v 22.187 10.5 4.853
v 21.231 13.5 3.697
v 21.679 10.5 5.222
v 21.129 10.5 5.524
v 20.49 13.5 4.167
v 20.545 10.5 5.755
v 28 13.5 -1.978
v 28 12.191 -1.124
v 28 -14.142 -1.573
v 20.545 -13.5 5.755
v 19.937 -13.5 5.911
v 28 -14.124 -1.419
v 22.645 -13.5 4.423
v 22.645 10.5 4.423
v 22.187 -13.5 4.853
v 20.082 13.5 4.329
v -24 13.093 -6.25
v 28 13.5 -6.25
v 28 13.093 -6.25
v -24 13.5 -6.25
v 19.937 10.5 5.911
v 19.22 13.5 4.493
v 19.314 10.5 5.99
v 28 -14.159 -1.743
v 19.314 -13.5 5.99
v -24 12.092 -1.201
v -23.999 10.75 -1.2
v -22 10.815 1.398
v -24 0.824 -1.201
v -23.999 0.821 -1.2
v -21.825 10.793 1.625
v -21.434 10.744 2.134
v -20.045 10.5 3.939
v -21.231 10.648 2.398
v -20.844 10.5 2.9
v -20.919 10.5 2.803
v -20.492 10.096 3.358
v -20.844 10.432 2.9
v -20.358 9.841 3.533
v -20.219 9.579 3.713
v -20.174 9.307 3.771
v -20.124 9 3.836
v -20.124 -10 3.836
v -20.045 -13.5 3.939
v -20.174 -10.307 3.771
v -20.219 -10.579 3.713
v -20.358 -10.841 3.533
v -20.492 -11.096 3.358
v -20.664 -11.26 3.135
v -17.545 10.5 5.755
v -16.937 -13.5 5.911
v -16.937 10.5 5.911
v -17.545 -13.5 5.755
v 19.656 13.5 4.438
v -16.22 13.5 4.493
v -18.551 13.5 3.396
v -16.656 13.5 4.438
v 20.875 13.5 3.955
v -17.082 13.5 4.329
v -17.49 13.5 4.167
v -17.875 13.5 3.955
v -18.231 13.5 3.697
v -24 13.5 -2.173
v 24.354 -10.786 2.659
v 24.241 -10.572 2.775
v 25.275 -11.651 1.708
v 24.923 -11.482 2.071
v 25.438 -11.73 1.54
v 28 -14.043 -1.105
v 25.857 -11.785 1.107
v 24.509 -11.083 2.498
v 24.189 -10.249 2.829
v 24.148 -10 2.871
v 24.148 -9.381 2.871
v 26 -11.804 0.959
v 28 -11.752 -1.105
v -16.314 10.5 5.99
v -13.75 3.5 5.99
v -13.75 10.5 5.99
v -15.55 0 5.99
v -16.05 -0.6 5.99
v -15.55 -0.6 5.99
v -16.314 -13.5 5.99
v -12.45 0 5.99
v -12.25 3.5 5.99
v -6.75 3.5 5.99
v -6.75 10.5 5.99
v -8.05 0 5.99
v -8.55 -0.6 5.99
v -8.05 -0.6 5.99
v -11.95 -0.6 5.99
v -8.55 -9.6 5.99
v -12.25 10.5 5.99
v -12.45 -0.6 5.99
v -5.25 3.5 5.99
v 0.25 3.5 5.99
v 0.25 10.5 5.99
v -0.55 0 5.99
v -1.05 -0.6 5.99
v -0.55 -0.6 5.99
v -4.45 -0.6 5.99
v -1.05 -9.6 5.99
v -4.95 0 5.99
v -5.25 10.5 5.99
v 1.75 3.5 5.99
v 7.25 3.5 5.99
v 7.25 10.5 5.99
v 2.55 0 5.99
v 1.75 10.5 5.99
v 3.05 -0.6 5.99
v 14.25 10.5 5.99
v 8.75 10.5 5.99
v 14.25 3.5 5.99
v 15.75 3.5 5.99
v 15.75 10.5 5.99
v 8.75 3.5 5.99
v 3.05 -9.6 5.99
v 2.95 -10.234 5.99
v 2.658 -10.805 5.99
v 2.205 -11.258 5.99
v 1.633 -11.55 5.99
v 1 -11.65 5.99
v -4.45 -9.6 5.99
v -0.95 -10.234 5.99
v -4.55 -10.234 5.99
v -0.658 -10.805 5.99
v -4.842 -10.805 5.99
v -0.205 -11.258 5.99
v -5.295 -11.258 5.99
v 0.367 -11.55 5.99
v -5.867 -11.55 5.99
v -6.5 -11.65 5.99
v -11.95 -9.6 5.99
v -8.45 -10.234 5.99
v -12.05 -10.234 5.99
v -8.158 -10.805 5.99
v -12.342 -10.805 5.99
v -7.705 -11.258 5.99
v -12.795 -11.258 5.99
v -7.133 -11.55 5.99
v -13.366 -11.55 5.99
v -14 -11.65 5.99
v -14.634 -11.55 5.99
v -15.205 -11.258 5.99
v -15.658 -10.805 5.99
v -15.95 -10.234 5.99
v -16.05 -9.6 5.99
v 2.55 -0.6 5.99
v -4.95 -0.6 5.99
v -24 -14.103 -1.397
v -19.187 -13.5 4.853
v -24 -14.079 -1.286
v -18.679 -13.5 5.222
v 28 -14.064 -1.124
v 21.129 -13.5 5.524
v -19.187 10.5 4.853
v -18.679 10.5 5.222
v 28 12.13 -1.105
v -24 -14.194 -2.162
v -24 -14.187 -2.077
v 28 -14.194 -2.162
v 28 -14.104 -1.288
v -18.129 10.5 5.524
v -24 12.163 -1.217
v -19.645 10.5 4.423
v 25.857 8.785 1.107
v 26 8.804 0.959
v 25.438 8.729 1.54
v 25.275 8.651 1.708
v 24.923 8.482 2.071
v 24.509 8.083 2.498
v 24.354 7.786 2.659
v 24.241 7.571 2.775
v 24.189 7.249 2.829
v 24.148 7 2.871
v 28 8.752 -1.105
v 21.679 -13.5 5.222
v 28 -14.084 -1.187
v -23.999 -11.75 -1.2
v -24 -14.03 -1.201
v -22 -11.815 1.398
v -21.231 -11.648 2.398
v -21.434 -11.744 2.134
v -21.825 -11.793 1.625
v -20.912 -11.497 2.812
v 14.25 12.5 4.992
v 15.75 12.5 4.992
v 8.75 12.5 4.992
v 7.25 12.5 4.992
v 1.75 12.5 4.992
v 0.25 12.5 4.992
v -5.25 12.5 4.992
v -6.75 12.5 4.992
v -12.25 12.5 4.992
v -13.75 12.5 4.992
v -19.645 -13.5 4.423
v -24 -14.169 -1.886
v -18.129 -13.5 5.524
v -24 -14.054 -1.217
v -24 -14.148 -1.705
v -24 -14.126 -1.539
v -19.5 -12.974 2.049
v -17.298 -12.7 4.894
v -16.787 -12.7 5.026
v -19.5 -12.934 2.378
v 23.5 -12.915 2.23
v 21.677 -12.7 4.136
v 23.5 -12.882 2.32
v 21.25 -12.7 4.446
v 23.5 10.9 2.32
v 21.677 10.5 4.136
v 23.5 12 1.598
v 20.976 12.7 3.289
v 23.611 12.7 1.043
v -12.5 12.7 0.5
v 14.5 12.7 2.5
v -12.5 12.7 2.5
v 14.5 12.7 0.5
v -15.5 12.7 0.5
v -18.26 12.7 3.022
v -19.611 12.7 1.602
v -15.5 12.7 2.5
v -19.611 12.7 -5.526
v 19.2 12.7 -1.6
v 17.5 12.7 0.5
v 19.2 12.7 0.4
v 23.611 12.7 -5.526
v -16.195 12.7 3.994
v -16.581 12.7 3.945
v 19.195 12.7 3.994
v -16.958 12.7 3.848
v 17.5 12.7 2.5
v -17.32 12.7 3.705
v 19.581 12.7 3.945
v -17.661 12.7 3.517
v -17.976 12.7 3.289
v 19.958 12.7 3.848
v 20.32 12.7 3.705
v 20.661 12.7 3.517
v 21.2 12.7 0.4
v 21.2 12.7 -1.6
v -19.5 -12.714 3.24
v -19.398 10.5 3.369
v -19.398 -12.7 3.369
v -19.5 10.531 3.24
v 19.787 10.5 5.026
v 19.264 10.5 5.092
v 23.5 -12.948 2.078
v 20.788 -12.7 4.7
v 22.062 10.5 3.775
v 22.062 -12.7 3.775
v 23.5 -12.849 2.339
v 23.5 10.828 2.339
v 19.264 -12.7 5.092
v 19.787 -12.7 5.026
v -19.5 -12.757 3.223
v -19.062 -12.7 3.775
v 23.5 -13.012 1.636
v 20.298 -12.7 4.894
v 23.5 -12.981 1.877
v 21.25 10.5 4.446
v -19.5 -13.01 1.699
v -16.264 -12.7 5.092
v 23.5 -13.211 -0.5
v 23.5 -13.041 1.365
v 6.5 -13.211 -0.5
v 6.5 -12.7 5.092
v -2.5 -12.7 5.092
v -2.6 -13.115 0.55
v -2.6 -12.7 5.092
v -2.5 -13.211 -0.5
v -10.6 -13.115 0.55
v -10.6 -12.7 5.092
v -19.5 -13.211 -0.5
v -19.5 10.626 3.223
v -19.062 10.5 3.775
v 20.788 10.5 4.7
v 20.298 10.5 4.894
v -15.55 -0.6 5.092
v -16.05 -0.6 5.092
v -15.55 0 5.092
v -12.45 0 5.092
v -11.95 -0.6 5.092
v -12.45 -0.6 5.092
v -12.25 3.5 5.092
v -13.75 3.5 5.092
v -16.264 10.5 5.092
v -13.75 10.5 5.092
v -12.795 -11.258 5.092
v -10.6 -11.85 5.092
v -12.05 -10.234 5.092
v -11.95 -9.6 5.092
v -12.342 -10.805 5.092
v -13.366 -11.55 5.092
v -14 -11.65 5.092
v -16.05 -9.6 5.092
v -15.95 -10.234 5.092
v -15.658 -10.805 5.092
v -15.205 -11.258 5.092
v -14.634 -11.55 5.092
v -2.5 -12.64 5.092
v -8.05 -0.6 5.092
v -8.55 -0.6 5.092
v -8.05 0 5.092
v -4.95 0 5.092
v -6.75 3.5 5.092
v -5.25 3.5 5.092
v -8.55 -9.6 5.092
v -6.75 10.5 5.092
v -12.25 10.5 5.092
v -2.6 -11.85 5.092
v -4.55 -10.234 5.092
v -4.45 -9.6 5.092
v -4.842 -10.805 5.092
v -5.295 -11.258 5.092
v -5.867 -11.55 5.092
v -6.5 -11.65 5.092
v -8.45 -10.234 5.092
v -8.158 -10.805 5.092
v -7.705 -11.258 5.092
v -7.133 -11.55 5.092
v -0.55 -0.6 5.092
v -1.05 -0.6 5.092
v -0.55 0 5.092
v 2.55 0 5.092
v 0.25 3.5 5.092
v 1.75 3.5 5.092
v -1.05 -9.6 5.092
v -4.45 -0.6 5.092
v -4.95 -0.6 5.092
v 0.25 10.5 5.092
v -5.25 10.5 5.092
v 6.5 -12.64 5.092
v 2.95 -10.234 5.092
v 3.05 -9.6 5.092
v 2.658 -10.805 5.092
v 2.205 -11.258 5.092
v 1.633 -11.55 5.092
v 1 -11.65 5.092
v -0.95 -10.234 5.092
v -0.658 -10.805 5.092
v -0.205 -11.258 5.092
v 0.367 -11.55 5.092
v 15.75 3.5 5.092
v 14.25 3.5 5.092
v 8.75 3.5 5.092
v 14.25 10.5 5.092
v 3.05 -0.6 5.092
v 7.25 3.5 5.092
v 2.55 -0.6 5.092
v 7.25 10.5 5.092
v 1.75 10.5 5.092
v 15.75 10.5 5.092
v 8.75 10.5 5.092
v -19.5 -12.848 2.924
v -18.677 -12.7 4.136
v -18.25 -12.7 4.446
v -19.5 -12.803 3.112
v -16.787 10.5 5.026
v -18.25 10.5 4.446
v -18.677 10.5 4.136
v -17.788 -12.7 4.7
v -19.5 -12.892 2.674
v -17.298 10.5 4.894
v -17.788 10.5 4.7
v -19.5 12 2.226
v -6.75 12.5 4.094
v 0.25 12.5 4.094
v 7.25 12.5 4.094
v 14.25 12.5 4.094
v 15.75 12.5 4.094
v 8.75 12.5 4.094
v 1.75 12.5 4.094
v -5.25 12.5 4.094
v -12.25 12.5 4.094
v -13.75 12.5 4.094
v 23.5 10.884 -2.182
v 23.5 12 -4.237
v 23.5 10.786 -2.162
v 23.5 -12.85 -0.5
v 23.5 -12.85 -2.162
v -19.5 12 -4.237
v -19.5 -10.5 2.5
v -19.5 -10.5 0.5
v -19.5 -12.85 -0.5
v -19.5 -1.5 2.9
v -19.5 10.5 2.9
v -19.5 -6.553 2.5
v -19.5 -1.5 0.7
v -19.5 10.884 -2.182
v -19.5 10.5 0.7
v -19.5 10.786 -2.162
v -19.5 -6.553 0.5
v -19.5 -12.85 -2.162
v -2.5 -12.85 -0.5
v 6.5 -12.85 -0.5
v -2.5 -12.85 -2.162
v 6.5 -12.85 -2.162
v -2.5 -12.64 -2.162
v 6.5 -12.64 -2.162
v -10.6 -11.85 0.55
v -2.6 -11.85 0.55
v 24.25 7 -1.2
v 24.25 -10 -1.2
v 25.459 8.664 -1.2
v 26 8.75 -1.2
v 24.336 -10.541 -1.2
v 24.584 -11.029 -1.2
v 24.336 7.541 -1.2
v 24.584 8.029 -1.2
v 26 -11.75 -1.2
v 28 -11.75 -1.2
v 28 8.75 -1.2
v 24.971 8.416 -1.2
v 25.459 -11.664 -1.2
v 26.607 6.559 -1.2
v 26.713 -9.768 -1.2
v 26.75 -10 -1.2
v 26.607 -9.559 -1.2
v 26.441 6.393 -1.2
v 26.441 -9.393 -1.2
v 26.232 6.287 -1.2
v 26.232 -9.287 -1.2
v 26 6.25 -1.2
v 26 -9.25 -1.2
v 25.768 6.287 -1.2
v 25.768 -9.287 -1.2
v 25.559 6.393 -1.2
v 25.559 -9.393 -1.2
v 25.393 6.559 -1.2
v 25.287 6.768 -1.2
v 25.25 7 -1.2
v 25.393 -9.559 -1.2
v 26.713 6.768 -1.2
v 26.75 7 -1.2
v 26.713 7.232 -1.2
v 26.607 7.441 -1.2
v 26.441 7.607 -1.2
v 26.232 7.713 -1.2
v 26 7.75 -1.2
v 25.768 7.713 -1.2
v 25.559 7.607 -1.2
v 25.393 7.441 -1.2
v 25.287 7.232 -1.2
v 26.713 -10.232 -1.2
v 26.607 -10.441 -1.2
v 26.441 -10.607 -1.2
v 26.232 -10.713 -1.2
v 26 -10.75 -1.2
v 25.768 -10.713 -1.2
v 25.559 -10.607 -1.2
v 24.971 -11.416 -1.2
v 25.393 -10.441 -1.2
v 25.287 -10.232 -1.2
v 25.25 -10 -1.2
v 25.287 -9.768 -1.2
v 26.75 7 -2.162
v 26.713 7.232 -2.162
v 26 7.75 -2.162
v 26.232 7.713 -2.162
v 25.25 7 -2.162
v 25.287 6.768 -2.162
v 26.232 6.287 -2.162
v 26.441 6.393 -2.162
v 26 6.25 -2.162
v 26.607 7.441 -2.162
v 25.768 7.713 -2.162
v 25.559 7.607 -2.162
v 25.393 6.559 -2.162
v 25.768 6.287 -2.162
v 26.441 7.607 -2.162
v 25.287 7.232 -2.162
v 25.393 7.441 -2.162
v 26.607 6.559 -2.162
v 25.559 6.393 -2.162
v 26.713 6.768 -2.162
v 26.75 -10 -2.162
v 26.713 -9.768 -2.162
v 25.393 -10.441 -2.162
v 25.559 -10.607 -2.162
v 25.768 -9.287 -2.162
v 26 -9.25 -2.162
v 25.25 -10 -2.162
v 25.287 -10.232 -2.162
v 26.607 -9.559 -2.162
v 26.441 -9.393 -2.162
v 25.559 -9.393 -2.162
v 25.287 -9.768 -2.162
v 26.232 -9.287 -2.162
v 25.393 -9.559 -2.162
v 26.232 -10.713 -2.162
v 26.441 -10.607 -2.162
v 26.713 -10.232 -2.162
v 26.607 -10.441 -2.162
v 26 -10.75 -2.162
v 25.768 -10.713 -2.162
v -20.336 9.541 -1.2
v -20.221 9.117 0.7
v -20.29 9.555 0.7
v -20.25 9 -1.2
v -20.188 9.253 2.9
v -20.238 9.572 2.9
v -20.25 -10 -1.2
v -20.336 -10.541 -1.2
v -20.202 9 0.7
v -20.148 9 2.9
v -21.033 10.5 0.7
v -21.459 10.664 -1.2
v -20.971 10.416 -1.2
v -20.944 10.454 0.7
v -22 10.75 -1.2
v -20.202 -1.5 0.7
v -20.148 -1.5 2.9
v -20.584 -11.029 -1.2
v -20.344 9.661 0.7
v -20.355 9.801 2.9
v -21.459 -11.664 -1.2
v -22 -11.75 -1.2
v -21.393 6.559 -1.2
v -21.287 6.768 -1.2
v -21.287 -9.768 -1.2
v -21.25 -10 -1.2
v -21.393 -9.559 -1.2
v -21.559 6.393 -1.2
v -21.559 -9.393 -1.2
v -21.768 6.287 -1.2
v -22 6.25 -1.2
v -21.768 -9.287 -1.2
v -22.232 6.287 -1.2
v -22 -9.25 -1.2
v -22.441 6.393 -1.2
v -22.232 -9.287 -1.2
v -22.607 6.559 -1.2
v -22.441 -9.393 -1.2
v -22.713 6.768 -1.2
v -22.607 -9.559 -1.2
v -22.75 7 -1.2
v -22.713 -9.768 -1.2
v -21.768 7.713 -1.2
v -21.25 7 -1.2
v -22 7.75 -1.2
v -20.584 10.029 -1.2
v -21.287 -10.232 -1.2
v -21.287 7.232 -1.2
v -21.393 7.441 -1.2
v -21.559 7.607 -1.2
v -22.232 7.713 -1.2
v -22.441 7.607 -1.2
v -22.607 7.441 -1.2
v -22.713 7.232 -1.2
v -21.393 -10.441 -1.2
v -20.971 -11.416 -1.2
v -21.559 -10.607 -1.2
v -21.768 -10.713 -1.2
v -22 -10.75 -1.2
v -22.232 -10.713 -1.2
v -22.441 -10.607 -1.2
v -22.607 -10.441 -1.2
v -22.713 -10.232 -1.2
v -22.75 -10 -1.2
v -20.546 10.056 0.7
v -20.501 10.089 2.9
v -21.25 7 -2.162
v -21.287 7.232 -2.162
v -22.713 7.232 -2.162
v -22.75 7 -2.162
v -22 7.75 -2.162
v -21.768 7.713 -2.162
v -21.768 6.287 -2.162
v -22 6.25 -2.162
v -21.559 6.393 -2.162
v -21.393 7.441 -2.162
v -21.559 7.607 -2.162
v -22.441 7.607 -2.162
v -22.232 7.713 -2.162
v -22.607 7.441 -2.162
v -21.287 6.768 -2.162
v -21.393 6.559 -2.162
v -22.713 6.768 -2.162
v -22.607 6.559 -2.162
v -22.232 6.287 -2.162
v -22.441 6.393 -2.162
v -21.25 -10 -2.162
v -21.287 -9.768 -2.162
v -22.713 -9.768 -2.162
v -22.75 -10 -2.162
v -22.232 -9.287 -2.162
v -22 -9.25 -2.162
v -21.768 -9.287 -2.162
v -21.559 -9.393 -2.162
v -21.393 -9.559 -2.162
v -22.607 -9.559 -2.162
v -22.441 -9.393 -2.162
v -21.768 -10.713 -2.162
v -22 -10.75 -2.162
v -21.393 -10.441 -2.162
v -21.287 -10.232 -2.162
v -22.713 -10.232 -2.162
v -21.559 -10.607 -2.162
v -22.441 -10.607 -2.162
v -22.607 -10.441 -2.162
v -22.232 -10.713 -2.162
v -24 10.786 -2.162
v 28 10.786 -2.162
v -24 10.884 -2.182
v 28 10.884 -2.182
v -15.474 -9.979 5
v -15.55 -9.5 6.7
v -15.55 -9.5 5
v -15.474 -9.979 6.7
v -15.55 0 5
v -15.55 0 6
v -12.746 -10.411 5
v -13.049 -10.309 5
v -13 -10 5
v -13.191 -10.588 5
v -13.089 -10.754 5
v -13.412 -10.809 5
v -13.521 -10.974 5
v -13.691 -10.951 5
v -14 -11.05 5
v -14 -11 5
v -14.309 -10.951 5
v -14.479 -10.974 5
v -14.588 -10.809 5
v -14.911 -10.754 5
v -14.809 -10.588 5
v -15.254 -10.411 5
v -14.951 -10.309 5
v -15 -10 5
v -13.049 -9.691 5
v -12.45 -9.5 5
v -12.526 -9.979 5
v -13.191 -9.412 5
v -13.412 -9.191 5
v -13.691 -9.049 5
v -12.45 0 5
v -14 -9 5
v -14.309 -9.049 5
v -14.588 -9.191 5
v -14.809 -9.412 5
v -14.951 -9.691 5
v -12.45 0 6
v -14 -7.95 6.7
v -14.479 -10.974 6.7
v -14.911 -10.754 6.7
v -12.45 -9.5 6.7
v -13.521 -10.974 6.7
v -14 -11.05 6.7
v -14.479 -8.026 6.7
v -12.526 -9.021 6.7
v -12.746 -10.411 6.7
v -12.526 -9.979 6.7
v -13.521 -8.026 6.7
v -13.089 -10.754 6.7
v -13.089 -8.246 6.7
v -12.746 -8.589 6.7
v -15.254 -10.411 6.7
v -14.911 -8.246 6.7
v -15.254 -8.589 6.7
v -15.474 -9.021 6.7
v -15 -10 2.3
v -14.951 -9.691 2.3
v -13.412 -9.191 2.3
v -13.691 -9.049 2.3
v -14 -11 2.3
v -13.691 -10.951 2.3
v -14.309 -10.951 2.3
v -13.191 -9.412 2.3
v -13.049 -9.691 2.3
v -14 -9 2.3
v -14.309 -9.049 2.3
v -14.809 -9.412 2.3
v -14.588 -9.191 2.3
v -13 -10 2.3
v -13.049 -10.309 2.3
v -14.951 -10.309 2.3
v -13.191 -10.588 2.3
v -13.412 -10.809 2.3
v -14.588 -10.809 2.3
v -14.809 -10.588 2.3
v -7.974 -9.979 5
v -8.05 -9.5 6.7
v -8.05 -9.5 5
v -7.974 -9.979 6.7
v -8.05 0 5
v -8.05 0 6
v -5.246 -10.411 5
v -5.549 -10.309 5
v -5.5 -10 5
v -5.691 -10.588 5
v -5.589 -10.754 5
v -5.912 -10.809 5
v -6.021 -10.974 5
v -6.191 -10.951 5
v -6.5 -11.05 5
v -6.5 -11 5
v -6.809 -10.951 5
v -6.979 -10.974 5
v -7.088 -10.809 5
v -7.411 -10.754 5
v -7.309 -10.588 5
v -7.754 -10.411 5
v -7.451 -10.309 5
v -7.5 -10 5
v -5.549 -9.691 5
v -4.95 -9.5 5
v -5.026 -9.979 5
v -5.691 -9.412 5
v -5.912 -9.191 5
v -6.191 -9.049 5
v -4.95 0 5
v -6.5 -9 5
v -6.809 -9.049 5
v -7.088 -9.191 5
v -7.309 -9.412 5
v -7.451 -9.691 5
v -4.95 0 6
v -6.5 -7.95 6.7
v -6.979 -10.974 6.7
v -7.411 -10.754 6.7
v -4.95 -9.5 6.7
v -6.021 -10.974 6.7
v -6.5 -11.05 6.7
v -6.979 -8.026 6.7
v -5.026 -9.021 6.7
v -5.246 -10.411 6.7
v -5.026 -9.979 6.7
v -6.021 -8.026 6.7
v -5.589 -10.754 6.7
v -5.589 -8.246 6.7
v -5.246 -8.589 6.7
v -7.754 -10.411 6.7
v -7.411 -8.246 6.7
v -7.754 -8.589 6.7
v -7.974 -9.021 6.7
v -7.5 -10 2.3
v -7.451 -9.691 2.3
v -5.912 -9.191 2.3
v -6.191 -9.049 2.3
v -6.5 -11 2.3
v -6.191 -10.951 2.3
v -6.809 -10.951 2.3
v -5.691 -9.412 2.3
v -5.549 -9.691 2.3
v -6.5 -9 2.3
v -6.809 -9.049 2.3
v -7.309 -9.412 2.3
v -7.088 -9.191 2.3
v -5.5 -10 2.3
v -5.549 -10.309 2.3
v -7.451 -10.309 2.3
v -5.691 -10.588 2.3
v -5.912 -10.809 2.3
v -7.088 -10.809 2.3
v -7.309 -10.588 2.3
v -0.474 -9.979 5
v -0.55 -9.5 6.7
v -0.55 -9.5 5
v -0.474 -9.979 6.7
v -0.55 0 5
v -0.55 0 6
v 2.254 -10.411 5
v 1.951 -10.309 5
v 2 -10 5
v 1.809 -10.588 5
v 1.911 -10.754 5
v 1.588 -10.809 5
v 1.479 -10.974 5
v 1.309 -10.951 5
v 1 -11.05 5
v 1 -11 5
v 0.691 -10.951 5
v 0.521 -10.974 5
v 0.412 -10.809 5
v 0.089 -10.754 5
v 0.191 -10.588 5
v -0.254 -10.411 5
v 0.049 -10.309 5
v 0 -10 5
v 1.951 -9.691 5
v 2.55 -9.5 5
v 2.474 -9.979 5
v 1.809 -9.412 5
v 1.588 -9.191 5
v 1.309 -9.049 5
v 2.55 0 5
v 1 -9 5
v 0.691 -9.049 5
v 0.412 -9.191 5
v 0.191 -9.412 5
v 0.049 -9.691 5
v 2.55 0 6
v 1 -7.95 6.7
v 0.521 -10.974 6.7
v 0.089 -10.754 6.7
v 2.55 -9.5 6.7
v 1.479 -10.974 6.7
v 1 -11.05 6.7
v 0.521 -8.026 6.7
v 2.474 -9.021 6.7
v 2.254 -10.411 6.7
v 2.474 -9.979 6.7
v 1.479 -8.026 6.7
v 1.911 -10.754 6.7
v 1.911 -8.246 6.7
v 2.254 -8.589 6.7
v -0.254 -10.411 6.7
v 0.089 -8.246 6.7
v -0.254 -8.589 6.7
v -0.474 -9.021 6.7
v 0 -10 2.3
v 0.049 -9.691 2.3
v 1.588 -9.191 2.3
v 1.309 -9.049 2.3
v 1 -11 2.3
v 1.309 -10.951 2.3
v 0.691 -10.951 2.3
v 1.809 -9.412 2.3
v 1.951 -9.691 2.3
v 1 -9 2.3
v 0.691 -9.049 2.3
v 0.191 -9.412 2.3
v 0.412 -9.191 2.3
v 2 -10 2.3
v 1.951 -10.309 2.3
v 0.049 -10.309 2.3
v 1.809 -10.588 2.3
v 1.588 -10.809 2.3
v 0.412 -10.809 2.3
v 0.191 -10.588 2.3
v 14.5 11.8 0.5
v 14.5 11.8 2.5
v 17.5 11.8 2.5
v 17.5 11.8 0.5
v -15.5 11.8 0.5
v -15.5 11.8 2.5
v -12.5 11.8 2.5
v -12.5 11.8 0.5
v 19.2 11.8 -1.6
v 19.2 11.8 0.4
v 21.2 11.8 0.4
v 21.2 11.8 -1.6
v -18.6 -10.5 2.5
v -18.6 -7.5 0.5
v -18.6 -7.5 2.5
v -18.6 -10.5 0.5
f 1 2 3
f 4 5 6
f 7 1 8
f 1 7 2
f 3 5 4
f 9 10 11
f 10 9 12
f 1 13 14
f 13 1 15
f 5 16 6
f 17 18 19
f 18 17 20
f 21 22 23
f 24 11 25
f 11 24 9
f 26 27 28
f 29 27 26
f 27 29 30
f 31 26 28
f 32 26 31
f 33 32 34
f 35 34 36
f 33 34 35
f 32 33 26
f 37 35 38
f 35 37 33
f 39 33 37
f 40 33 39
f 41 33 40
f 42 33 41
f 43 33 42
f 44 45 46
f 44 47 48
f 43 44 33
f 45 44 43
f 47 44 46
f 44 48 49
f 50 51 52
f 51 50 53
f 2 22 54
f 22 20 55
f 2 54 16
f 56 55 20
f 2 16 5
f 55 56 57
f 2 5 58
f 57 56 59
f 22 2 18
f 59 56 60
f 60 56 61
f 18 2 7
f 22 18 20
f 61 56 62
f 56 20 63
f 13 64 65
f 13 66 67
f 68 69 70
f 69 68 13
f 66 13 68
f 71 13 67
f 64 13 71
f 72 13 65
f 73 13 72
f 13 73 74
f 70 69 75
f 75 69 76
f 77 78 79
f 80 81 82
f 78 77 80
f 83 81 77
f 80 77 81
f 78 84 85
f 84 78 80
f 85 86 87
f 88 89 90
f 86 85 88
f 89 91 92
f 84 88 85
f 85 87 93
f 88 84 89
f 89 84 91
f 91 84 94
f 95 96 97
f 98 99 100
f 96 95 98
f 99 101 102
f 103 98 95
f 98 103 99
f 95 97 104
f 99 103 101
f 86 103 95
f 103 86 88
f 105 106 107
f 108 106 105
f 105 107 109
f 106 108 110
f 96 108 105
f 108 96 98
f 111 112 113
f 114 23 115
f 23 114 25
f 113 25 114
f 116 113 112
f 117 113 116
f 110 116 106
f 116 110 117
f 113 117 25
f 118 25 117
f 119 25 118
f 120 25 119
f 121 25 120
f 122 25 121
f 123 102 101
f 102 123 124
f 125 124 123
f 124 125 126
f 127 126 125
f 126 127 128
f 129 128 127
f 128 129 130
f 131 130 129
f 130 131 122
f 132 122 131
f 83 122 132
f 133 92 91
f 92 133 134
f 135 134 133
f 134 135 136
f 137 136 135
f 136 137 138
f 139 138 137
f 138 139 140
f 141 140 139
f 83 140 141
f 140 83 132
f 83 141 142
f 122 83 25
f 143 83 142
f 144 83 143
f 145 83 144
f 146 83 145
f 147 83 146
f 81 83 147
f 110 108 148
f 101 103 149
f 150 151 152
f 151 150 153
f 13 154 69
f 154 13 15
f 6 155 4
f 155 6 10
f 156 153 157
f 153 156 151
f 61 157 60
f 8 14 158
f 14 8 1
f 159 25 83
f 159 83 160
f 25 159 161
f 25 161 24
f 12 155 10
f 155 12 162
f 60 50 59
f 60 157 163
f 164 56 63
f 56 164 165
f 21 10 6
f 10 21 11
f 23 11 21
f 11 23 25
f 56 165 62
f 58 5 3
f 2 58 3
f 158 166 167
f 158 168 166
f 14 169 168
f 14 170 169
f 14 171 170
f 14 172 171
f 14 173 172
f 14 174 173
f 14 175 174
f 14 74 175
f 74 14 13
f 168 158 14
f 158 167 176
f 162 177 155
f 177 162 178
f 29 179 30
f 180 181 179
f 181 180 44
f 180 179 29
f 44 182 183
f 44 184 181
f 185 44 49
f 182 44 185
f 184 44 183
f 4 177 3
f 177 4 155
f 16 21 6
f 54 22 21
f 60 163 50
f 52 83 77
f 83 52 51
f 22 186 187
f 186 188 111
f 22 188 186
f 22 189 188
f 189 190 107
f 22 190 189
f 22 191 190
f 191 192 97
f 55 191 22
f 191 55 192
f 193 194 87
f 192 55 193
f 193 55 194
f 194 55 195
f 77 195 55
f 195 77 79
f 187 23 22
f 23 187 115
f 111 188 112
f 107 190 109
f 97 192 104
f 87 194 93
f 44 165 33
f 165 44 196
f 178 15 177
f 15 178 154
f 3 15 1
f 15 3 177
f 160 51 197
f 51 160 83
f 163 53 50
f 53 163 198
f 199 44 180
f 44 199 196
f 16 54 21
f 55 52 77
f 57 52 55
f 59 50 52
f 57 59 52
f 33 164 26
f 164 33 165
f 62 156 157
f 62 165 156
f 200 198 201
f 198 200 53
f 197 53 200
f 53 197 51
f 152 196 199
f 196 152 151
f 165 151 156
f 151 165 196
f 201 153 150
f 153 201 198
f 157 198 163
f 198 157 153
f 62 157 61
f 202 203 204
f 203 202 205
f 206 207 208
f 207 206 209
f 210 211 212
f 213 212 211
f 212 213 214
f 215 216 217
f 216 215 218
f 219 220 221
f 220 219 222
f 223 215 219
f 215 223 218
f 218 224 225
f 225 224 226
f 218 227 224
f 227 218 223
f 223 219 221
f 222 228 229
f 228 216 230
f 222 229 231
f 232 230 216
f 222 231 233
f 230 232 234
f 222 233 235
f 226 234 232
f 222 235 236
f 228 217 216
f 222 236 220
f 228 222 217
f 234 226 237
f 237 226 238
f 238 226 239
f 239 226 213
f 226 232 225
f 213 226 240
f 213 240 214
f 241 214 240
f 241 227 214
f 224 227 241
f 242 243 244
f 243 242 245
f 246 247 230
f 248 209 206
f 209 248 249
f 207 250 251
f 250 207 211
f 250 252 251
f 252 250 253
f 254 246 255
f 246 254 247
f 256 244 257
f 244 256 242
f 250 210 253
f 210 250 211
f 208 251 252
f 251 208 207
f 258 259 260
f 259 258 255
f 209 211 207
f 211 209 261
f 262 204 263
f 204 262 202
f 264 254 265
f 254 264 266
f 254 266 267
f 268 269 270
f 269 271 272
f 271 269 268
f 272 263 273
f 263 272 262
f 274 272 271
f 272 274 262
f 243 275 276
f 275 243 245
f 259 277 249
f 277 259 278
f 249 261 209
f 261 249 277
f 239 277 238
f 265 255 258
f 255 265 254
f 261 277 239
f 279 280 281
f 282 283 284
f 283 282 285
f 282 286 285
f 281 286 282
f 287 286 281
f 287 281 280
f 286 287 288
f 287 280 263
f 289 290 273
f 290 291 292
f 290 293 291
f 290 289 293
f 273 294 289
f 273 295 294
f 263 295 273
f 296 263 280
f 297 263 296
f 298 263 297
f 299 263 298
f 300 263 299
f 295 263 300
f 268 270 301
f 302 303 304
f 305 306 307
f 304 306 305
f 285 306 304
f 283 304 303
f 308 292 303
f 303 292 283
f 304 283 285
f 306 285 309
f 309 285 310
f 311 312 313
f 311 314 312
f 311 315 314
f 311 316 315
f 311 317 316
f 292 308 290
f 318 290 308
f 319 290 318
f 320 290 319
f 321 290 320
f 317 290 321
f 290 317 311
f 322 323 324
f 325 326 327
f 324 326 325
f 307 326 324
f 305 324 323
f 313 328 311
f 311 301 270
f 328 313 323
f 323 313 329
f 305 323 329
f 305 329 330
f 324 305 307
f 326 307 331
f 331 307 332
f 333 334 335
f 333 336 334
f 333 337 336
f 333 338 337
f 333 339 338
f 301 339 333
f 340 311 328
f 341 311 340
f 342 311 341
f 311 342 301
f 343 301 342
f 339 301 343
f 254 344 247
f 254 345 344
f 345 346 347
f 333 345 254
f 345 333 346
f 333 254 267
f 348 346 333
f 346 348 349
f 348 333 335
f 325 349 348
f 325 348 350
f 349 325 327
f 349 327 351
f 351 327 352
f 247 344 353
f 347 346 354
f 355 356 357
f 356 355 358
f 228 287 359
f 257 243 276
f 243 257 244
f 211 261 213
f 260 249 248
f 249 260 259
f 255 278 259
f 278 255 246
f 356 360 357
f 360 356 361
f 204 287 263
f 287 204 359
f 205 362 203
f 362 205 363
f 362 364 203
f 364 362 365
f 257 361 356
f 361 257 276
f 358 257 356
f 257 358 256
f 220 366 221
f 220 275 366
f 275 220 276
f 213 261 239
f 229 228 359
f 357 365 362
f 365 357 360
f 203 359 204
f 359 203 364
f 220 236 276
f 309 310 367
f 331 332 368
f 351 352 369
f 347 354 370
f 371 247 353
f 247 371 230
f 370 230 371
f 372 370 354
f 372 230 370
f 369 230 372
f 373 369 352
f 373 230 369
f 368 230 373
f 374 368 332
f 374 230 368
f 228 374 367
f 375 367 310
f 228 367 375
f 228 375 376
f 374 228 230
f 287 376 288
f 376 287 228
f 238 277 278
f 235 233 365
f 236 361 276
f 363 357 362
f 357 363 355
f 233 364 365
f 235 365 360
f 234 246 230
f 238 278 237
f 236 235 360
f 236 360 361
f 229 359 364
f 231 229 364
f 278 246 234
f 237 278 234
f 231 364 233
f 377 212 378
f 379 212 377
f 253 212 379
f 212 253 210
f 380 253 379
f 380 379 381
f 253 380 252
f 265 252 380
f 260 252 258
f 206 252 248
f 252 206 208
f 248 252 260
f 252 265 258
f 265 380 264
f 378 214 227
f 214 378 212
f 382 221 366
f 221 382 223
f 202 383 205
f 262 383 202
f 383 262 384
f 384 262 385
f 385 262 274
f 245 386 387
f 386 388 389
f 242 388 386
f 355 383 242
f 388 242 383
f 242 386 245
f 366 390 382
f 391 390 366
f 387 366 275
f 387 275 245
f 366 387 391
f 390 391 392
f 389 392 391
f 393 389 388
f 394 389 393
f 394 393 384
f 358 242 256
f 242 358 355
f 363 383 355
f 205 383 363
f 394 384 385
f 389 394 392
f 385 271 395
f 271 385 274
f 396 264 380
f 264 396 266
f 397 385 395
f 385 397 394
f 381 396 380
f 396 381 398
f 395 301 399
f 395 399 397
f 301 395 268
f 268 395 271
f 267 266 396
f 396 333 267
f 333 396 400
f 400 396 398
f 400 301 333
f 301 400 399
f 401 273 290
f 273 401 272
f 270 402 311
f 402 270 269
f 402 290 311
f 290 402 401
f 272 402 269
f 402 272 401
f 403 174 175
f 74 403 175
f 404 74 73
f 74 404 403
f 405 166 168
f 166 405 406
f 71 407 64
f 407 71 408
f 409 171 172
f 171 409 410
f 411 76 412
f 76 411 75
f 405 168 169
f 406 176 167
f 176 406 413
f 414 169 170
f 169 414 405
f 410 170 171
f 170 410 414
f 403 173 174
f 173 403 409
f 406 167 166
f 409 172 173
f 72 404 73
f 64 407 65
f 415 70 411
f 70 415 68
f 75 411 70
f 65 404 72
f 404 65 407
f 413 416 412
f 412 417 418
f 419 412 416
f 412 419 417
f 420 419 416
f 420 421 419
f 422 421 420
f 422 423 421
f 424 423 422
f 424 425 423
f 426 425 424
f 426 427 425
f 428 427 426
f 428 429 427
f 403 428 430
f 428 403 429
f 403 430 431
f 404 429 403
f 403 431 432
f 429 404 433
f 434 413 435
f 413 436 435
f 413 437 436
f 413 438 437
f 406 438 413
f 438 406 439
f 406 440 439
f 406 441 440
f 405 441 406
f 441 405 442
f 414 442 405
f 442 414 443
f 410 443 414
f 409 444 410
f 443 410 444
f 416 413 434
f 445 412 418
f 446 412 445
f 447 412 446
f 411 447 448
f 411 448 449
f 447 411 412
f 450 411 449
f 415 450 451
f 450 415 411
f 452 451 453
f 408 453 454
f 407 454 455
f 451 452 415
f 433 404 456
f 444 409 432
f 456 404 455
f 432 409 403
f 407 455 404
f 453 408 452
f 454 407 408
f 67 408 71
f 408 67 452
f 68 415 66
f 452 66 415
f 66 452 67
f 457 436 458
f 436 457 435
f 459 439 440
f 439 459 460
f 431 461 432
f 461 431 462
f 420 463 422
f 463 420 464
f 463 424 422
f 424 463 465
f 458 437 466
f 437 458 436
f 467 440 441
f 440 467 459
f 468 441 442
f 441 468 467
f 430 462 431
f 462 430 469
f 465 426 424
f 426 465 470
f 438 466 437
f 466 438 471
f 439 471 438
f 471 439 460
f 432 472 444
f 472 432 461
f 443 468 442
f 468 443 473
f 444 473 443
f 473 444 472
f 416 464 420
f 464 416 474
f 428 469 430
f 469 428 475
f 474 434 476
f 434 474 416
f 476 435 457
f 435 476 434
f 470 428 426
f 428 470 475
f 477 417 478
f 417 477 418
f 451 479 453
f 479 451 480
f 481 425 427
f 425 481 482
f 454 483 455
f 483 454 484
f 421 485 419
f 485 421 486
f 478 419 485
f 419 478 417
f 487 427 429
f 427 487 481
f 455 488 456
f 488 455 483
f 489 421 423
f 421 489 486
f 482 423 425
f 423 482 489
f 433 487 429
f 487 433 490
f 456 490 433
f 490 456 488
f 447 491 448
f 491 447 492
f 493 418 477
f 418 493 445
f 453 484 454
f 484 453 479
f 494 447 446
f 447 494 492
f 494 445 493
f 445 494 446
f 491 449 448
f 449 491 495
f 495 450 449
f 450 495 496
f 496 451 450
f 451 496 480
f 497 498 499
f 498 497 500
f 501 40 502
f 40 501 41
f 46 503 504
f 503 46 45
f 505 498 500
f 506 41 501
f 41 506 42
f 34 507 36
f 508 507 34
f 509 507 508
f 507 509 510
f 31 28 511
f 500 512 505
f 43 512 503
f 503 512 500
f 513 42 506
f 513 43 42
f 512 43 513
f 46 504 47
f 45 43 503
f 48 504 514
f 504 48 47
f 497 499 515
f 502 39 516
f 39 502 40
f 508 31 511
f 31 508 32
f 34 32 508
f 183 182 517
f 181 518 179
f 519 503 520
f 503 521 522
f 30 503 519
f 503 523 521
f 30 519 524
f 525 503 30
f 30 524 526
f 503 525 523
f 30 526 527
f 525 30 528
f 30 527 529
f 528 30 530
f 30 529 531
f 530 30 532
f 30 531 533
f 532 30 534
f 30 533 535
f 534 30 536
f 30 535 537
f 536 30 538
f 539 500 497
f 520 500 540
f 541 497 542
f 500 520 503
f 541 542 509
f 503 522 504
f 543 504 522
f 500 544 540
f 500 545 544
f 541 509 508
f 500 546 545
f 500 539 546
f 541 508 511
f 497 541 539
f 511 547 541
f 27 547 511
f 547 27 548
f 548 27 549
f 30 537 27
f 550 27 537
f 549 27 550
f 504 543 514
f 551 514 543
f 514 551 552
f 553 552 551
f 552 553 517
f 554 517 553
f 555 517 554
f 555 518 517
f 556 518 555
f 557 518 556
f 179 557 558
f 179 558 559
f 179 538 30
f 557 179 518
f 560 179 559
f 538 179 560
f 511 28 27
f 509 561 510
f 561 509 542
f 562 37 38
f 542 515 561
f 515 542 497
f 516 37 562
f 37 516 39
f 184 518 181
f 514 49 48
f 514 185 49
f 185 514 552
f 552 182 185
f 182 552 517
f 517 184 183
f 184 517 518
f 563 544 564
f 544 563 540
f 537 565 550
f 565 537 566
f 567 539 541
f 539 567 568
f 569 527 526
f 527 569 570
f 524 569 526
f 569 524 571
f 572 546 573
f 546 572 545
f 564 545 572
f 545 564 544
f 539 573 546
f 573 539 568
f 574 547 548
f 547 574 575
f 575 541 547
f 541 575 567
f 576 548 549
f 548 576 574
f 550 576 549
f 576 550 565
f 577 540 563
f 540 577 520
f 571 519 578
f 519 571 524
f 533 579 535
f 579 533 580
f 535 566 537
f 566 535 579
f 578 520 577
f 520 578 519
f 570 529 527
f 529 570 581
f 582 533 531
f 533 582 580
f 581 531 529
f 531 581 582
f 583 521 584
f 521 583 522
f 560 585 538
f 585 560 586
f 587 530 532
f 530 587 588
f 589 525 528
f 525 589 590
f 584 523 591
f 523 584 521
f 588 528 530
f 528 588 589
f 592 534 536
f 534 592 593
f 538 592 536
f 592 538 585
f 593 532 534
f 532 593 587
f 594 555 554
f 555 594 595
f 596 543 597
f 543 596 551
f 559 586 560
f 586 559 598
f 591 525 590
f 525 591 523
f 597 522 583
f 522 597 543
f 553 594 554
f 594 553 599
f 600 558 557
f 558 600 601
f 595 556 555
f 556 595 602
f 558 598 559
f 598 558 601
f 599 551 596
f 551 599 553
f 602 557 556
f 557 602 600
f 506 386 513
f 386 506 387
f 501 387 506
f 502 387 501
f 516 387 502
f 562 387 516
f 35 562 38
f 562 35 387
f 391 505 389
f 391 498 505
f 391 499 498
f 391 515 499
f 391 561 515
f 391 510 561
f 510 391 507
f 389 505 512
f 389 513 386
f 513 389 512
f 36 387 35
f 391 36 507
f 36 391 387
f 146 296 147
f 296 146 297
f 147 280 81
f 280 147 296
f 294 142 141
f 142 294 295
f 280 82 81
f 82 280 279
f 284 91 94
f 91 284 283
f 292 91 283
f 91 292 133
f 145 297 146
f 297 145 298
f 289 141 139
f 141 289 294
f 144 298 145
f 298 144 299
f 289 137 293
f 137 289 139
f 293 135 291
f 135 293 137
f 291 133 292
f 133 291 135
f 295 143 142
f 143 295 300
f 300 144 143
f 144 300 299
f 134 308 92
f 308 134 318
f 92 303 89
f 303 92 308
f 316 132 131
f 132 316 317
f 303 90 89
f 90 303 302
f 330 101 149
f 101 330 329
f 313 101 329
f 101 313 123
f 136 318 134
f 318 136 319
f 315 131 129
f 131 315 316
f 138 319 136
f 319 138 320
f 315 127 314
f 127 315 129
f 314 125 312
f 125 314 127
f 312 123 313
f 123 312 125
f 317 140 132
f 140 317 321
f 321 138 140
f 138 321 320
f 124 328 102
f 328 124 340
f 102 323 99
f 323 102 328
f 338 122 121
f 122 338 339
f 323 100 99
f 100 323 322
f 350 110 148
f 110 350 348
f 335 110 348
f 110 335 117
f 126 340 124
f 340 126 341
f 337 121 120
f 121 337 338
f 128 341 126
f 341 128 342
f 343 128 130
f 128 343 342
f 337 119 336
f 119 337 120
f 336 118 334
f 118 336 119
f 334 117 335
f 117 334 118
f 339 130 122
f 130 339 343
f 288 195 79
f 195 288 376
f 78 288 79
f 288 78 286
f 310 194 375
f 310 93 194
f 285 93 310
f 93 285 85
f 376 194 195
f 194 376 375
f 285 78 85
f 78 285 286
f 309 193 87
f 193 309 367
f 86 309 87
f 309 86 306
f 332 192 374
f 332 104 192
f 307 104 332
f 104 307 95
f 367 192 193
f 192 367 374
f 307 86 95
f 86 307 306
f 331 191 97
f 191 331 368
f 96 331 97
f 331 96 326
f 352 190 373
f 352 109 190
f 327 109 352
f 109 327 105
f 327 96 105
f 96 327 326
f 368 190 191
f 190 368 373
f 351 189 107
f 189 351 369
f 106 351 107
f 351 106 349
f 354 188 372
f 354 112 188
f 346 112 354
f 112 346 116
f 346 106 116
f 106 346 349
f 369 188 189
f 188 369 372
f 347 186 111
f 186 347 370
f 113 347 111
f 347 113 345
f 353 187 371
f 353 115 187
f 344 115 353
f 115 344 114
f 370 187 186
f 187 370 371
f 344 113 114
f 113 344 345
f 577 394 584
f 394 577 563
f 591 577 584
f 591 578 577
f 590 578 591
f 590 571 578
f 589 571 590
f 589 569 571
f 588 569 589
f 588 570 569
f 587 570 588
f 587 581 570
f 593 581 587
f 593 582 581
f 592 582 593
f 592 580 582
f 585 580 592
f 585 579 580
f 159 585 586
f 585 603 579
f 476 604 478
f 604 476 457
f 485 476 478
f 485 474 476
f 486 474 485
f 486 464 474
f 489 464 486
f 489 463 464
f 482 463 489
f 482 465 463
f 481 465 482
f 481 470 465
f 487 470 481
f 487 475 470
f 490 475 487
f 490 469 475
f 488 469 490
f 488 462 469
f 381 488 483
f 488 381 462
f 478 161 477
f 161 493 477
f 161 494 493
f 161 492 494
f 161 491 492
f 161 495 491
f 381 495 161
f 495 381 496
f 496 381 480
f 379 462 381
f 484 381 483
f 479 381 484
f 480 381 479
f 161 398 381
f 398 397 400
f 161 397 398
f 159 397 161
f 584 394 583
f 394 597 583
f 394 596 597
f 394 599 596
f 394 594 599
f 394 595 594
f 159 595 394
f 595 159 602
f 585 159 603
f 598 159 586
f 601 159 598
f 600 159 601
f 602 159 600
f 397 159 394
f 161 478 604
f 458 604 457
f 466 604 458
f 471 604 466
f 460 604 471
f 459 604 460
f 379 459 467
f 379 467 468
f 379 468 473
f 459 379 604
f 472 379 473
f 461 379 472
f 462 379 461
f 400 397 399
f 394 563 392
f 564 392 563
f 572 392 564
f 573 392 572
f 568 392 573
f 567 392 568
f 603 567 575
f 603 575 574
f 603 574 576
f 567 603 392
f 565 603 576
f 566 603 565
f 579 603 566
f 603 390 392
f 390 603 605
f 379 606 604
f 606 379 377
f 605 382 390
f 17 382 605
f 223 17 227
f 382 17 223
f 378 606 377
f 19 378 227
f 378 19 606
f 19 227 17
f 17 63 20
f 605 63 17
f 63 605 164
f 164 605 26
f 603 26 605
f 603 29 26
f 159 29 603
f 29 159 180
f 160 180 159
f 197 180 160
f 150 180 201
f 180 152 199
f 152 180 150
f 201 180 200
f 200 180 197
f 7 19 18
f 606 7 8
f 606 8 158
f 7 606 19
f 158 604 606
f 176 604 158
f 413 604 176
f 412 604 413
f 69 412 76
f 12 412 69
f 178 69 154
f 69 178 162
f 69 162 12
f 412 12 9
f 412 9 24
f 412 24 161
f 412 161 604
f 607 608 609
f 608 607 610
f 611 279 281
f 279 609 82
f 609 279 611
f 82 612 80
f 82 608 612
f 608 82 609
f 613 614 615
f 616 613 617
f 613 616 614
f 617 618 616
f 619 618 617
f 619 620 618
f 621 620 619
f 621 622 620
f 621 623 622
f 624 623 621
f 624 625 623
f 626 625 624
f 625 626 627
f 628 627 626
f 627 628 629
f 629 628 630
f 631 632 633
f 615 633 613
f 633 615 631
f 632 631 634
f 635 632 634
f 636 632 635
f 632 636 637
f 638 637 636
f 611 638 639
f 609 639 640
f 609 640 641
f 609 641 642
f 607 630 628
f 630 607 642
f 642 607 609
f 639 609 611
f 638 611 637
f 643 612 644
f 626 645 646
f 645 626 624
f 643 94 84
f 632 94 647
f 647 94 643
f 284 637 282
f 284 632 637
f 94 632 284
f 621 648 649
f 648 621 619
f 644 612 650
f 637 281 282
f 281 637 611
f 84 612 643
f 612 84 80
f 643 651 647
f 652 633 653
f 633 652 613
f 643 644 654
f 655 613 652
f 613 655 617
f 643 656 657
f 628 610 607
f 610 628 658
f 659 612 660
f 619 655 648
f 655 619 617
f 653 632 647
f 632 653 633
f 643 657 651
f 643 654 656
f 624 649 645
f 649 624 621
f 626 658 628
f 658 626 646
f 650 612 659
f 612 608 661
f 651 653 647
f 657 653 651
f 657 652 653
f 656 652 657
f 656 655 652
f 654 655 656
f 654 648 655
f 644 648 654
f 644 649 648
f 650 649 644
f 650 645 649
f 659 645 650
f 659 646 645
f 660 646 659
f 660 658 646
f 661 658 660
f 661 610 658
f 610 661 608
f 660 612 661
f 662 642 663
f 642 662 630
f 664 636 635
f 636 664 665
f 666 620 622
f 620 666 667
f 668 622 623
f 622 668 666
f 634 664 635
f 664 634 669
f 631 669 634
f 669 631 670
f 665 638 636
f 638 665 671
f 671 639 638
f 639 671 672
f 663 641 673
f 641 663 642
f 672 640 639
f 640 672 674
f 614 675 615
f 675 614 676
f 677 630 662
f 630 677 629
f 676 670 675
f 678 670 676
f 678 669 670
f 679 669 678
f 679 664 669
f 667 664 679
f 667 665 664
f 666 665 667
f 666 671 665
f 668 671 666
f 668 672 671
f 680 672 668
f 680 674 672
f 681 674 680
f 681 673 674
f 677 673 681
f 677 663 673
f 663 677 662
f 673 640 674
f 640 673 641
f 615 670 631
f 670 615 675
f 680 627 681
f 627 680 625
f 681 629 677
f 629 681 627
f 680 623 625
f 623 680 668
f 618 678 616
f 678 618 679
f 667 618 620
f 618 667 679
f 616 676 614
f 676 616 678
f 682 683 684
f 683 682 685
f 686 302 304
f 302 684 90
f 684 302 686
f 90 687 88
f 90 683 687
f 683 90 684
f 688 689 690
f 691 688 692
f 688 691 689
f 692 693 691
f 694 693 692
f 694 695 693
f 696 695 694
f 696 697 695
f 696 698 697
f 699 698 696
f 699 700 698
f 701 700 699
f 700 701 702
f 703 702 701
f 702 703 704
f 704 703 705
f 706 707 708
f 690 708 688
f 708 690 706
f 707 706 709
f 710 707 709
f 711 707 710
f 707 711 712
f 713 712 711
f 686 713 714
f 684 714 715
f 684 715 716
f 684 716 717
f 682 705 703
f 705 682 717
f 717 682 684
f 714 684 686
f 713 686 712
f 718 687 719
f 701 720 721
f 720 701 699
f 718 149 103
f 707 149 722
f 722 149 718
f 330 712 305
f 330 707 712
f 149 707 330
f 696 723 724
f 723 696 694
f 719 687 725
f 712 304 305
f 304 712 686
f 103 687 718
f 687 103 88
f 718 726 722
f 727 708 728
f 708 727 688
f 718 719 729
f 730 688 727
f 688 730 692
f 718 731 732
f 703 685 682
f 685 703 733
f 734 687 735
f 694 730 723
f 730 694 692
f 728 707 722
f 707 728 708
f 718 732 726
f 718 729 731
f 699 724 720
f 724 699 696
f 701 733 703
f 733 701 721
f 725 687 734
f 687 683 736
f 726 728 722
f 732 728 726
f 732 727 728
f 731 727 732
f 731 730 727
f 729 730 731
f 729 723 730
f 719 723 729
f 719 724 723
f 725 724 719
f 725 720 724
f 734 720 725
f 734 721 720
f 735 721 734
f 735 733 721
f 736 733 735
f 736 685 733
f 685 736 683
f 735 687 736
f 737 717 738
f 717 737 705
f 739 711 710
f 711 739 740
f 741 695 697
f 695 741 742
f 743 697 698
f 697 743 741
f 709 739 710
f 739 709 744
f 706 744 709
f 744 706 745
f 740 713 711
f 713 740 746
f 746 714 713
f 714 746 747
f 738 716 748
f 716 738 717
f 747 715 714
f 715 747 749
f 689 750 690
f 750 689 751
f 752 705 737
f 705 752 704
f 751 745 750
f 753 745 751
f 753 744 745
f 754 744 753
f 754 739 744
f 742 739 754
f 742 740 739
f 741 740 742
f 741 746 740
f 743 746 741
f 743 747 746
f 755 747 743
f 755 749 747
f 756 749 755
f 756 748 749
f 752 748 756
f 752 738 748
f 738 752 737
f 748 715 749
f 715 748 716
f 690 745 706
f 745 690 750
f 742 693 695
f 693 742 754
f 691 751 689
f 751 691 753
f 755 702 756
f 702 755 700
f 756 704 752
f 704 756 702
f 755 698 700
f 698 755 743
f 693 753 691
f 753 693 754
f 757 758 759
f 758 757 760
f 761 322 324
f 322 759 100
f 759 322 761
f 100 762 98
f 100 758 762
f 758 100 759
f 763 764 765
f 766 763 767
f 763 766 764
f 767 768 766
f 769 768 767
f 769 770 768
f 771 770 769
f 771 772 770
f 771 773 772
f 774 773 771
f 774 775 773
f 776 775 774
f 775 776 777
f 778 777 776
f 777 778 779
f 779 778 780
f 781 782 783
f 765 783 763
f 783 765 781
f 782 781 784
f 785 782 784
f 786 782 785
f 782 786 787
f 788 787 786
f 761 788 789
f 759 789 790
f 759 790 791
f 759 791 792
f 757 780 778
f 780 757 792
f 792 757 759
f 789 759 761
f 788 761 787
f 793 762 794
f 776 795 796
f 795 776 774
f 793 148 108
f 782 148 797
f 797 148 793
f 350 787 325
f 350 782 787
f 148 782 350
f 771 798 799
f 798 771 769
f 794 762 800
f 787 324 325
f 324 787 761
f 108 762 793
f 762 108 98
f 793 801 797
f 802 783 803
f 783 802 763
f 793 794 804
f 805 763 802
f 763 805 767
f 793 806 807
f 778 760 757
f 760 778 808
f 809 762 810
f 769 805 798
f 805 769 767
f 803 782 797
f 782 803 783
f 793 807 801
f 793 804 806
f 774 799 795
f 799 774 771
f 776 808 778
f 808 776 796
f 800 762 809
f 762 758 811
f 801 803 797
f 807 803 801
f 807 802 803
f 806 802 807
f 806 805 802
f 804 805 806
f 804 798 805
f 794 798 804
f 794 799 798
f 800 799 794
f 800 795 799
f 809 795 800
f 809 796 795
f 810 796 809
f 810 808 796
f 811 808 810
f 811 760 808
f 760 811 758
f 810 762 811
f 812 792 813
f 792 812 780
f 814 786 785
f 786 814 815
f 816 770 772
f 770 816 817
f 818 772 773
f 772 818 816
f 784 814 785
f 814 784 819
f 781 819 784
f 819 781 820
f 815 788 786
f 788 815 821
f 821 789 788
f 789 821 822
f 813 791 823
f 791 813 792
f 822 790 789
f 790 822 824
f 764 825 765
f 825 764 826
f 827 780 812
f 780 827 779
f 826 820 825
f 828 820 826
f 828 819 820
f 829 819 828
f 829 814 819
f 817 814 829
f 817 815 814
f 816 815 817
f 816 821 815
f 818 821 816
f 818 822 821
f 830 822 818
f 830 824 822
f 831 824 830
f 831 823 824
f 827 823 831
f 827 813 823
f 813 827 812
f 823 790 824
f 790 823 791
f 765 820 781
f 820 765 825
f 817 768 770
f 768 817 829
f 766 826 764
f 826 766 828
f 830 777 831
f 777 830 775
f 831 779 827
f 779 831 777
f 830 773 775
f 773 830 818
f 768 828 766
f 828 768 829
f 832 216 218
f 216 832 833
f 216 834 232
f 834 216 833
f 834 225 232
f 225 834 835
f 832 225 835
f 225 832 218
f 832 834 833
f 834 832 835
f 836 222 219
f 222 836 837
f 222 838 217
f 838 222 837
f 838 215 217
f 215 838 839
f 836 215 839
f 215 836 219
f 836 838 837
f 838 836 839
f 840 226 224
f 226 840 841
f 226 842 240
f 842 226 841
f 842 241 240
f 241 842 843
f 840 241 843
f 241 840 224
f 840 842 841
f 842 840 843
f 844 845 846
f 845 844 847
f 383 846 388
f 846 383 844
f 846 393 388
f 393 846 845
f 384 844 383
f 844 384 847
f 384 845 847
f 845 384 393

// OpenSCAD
$fn=20;
//electronics();
//translate([0,0,-25.5])rotate([-11.31,0,0])goggles();
fullcase();

module goggles(){
  color("white")translate([-50,-19,0])hull(){
    cube([100,0.1,20]);
    translate([0,25,5])cube([100,0.1,20]);
    translate([0,30,-1])cube([100,0.1,20]);
  }
}

module fullcase(){
  difference(){
  translate([0,0,1])difference(){
    union(){
      difference(){
        case(0);
        translate([0,0,-0.1])case(0.8); // make a bit thicker top wall
      }
      intersection(){
        case(0);
        union(){
          hull(){
            translate([26,12,0])cylinder(d=5,h=14,center=true);
            translate([26,-14,0])cylinder(d=5,h=14,center=true);
          }
          hull(){
            translate([-22,12,0])cylinder(d=5,h=14,center=true);
            translate([-22,-14,0])cylinder(d=5,h=14,center=true);
          }
        }
      }
      support();
    }
    // mounting holes
    hull(){
      translate([26,7,-2.2])cylinder(d1=3.5,d2=4,h=10);
      translate([26,-10,-2.2])cylinder(d1=3.5,d2=4,h=10);
      translate([30,7,-2.2])cylinder(d1=3.5,d2=4,h=10);
      translate([30,-10,-2.2])cylinder(d1=3.5,d2=4,h=10);
    }
      translate([26,7,0])cylinder(d=1.5,h=10,center=true);
      translate([26,-10,0])cylinder(d=1.5,h=10,center=true);
    hull(){
      translate([-22,9,-2.2])cylinder(d1=3.5,d2=4,h=10);
      translate([-22,-10,-2.2])cylinder(d1=3.5,d2=4,h=10);
      translate([-25,9,-2.2])cylinder(d1=3.5,d2=4,h=10);
      translate([-25,-10,-2.2])cylinder(d1=3.5,d2=4,h=10);
    }
      translate([-22,7,0])cylinder(d=1.5,h=10,center=true);
      translate([-22,-10,0])cylinder(d=1.5,h=10,center=true);

    // sdcard slot
    translate([-20,4.5,0.8])cube([10,12,2.2],center=true);
    
    //translate([0,0,-8.5])cube([100,100,10],center=true);
    //translate([-5,-20,-10])cube([100,100,20]);
  }
    //electronics();
    translate([-38/2+4/2+3,-25/2+4/2+0.9,0]){
      hull(){
        cylinder(d=4.1,h=10); //button
        translate([-4.1/2,5,0])cube([4.1,4,10]);
      }
      translate([7.5,0,0])hull(){
        cylinder(d=4.1,h=10); //button
        translate([-4.1/2,5,0])cube([4.1,4,10]);
      }
      translate([7.5*2,0,0])hull(){
        cylinder(d=4.1,h=10); //button
        translate([-4.1/2,5,0])cube([4.1,4,10]);
      }
    }
    translate([0,0,-25.5])rotate([-11.31,0,0])goggles();
    
    //***** ventilation
    for (i = [0 : 7 : 30] ){
      translate([i-13,8,5])cube([1.5,9,2], center=true);
    }
    /*
    // screw holes
    translate([38/2-7,-25/2+2,0])cylinder(d=1.5,h=5,$fn=20);
    translate([38/2-15.5,25/2-2,0])cylinder(d=1.5,h=5,$fn=20);
    */
    translate([-(20/2+24),0,0])cube([20,100,50],center=true);
    translate([(20/2+28),0,0])cube([20,100,50],center=true);
  }
  // PCB tabs
  //down
  translate([16,12.3,1.2+0.3])cube([3,1,2],center=true);
  translate([-14,12.3,1.2+0.3])cube([3,1,2],center=true);
  translate([19.7+0.5,12.3,-0.6])cube([2,1,2],center=true);
  //side
  hull(){
    translate([-19.1,-9,1.2+0.3])cube([1,3,2],center=true);
    translate([-19.6,-8,1.2+0.3])cube([0.1,3,2],center=true);
  }
  //***** buttons
  translate([-38/2+4/2+3,-25/2+4/2+1,5]){
    button();
    translate([7.5,0,0])button();
    translate([7.5*2,0,0])button();
  }
}


module support(){
  translate([2,-13.2,-2.5])cube([50,0.7,2],center=true);
  
  translate([2,-13.04,-0.1])cube([9,0.8,10],center=true);
/*
  hull(){
  translate([2+9/2,-13.04,-0.1])cube([0.3,0.8,7.8],center=true);
  translate([2+9/2,13,-1+1])cube([0.3,0.8,7],center=true);
  }
  hull(){
  translate([2-9/2,-13.04,-0.1])cube([0.3,0.8,7.8],center=true);
  translate([2-9/2,13,-1+1])cube([0.3,0.8,7],center=true);
  }
  
  hull(){
  translate([-6.6-3.85,-13.04,1.8])cube([0.3,0.8,4.1],center=true);
  translate([-6.6-4,13,0])cube([0.3,0.8,7],center=true);
  }
 */
  translate([-6.6,-12.6,2])cube([8,1.5,4.9],center=true);
}


module button(){
  hull(){
    cylinder(d=3.1,h=1.7); //button
    translate([-3.1/2,5.5,0])cube([3.1,4,1]);
  }
  translate([0,-0.5,-2.7])cylinder(d=2,h=2.7);
  
/*  hull(){
  translate([0,0,-2.7])cylinder(d=2.5,h=2.7);
  translate([0,4,0])cylinder(d=2,h=0.1);
  }*/
}

module case(wall){
  hull(){
    rotate([90,0,0]){
      translate([-16,0,3/2])cylinder(d=10-wall*2, h=27-3-wall*2,center=true,$fn=50);
      translate([19,0,3/2])cylinder(d=10-wall*2, h=27-3-wall*2,center=true,$fn=50);
      
      translate([-16,0,-(27-3-wall)/2])cylinder(d2=10-wall*2,d1=7-wall, h=3-wall,center=true,$fn=50);
      translate([19,0,-(27-3-wall)/2])cylinder(d2=10-wall*2,d1=7-wall, h=3-wall,center=true,$fn=50);
    }
    translate([2.5,-0.5,-7])cube([60-wall*2,28-wall*2,0.5],center=true);
  }
}

module electronics(){
  difference(){
    union(){
      DVRpcb();
      translate([13.5,-1,0])MYpcb();
    }
    translate([38/2-7,-25/2+2,0])cylinder(d=2,h=10,$fn=20,center=true);
    translate([38/2-7,-25/2+2,-3-0.5])cylinder(d=4,h=3,$fn=20);
    translate([38/2-15.5,25/2-2,0])cylinder(d=2,h=10,$fn=20,center=true);
    translate([38/2-15.5,25/2-2,-3-0.5])cylinder(d=4,h=3,$fn=20);
  }
}

module DVRpcb(){
  color("blue")cube([38,25,1], center=true); // pcb
  color("black")translate([0,0,-(0.5+1.5/2)])cube([36,23,1.5], center=true); // components
  color("lightgray")translate([38/2-1.5,0,(0.5+3/2)])cube([7,24,3], center=true); // connectors
  color("gray")translate([-38/2+15/2+1,25/2-15/2-2,(0.5+2/2)])cube([15,15,2], center=true); // cardreader
  color("black")translate([-38/2+10/2-2,25/2-10/2-3,(0.5+2/2)+0.4])cube([10,10,1], center=true); // sdcard
  
  translate([-38/2+4/2+3,-25/2+2.5/2+1,(0.5+1.5/2)]){
    color("gray")cube([4,2.5,1.5],center=true); //button
    color("black")cylinder(d=1.5,h=1,$fn=10);
  }
  translate([-38/2+4/2+3+7.5,-25/2+2.5/2+1,(0.5+1.5/2)]){
    color("gray")cube([4,2.5,1.5],center=true); //button
    color("black")cylinder(d=1.5,h=1,$fn=10);
  }
  translate([-38/2+4/2+3+7.5+7.5,-25/2+2.5/2+1,(0.5+1.5/2)]){
    color("gray")cube([4,2.5,1.5],center=true); //button
    color("black")cylinder(d=1.5,h=1,$fn=10);
  }
}

module MYpcb(){
  color("purple")translate([-38/2+15/2+1,25/2-15/2-2,(0.5+0.8/2)+2])cube([14,21,0.8], center=true); // cardreader
  color("purple")translate([-38/2+15/2+3.25+4,25/2-15/2-2.25-3.5,(0.5+0.8/2)+2])cube([9.5,21.5,0.8], center=true); // cardreader
  color("black")translate([-10,0,(0.5+1.8/2)+2.8])cube([6,6,1.8], center=true); // cardreader
  
}
